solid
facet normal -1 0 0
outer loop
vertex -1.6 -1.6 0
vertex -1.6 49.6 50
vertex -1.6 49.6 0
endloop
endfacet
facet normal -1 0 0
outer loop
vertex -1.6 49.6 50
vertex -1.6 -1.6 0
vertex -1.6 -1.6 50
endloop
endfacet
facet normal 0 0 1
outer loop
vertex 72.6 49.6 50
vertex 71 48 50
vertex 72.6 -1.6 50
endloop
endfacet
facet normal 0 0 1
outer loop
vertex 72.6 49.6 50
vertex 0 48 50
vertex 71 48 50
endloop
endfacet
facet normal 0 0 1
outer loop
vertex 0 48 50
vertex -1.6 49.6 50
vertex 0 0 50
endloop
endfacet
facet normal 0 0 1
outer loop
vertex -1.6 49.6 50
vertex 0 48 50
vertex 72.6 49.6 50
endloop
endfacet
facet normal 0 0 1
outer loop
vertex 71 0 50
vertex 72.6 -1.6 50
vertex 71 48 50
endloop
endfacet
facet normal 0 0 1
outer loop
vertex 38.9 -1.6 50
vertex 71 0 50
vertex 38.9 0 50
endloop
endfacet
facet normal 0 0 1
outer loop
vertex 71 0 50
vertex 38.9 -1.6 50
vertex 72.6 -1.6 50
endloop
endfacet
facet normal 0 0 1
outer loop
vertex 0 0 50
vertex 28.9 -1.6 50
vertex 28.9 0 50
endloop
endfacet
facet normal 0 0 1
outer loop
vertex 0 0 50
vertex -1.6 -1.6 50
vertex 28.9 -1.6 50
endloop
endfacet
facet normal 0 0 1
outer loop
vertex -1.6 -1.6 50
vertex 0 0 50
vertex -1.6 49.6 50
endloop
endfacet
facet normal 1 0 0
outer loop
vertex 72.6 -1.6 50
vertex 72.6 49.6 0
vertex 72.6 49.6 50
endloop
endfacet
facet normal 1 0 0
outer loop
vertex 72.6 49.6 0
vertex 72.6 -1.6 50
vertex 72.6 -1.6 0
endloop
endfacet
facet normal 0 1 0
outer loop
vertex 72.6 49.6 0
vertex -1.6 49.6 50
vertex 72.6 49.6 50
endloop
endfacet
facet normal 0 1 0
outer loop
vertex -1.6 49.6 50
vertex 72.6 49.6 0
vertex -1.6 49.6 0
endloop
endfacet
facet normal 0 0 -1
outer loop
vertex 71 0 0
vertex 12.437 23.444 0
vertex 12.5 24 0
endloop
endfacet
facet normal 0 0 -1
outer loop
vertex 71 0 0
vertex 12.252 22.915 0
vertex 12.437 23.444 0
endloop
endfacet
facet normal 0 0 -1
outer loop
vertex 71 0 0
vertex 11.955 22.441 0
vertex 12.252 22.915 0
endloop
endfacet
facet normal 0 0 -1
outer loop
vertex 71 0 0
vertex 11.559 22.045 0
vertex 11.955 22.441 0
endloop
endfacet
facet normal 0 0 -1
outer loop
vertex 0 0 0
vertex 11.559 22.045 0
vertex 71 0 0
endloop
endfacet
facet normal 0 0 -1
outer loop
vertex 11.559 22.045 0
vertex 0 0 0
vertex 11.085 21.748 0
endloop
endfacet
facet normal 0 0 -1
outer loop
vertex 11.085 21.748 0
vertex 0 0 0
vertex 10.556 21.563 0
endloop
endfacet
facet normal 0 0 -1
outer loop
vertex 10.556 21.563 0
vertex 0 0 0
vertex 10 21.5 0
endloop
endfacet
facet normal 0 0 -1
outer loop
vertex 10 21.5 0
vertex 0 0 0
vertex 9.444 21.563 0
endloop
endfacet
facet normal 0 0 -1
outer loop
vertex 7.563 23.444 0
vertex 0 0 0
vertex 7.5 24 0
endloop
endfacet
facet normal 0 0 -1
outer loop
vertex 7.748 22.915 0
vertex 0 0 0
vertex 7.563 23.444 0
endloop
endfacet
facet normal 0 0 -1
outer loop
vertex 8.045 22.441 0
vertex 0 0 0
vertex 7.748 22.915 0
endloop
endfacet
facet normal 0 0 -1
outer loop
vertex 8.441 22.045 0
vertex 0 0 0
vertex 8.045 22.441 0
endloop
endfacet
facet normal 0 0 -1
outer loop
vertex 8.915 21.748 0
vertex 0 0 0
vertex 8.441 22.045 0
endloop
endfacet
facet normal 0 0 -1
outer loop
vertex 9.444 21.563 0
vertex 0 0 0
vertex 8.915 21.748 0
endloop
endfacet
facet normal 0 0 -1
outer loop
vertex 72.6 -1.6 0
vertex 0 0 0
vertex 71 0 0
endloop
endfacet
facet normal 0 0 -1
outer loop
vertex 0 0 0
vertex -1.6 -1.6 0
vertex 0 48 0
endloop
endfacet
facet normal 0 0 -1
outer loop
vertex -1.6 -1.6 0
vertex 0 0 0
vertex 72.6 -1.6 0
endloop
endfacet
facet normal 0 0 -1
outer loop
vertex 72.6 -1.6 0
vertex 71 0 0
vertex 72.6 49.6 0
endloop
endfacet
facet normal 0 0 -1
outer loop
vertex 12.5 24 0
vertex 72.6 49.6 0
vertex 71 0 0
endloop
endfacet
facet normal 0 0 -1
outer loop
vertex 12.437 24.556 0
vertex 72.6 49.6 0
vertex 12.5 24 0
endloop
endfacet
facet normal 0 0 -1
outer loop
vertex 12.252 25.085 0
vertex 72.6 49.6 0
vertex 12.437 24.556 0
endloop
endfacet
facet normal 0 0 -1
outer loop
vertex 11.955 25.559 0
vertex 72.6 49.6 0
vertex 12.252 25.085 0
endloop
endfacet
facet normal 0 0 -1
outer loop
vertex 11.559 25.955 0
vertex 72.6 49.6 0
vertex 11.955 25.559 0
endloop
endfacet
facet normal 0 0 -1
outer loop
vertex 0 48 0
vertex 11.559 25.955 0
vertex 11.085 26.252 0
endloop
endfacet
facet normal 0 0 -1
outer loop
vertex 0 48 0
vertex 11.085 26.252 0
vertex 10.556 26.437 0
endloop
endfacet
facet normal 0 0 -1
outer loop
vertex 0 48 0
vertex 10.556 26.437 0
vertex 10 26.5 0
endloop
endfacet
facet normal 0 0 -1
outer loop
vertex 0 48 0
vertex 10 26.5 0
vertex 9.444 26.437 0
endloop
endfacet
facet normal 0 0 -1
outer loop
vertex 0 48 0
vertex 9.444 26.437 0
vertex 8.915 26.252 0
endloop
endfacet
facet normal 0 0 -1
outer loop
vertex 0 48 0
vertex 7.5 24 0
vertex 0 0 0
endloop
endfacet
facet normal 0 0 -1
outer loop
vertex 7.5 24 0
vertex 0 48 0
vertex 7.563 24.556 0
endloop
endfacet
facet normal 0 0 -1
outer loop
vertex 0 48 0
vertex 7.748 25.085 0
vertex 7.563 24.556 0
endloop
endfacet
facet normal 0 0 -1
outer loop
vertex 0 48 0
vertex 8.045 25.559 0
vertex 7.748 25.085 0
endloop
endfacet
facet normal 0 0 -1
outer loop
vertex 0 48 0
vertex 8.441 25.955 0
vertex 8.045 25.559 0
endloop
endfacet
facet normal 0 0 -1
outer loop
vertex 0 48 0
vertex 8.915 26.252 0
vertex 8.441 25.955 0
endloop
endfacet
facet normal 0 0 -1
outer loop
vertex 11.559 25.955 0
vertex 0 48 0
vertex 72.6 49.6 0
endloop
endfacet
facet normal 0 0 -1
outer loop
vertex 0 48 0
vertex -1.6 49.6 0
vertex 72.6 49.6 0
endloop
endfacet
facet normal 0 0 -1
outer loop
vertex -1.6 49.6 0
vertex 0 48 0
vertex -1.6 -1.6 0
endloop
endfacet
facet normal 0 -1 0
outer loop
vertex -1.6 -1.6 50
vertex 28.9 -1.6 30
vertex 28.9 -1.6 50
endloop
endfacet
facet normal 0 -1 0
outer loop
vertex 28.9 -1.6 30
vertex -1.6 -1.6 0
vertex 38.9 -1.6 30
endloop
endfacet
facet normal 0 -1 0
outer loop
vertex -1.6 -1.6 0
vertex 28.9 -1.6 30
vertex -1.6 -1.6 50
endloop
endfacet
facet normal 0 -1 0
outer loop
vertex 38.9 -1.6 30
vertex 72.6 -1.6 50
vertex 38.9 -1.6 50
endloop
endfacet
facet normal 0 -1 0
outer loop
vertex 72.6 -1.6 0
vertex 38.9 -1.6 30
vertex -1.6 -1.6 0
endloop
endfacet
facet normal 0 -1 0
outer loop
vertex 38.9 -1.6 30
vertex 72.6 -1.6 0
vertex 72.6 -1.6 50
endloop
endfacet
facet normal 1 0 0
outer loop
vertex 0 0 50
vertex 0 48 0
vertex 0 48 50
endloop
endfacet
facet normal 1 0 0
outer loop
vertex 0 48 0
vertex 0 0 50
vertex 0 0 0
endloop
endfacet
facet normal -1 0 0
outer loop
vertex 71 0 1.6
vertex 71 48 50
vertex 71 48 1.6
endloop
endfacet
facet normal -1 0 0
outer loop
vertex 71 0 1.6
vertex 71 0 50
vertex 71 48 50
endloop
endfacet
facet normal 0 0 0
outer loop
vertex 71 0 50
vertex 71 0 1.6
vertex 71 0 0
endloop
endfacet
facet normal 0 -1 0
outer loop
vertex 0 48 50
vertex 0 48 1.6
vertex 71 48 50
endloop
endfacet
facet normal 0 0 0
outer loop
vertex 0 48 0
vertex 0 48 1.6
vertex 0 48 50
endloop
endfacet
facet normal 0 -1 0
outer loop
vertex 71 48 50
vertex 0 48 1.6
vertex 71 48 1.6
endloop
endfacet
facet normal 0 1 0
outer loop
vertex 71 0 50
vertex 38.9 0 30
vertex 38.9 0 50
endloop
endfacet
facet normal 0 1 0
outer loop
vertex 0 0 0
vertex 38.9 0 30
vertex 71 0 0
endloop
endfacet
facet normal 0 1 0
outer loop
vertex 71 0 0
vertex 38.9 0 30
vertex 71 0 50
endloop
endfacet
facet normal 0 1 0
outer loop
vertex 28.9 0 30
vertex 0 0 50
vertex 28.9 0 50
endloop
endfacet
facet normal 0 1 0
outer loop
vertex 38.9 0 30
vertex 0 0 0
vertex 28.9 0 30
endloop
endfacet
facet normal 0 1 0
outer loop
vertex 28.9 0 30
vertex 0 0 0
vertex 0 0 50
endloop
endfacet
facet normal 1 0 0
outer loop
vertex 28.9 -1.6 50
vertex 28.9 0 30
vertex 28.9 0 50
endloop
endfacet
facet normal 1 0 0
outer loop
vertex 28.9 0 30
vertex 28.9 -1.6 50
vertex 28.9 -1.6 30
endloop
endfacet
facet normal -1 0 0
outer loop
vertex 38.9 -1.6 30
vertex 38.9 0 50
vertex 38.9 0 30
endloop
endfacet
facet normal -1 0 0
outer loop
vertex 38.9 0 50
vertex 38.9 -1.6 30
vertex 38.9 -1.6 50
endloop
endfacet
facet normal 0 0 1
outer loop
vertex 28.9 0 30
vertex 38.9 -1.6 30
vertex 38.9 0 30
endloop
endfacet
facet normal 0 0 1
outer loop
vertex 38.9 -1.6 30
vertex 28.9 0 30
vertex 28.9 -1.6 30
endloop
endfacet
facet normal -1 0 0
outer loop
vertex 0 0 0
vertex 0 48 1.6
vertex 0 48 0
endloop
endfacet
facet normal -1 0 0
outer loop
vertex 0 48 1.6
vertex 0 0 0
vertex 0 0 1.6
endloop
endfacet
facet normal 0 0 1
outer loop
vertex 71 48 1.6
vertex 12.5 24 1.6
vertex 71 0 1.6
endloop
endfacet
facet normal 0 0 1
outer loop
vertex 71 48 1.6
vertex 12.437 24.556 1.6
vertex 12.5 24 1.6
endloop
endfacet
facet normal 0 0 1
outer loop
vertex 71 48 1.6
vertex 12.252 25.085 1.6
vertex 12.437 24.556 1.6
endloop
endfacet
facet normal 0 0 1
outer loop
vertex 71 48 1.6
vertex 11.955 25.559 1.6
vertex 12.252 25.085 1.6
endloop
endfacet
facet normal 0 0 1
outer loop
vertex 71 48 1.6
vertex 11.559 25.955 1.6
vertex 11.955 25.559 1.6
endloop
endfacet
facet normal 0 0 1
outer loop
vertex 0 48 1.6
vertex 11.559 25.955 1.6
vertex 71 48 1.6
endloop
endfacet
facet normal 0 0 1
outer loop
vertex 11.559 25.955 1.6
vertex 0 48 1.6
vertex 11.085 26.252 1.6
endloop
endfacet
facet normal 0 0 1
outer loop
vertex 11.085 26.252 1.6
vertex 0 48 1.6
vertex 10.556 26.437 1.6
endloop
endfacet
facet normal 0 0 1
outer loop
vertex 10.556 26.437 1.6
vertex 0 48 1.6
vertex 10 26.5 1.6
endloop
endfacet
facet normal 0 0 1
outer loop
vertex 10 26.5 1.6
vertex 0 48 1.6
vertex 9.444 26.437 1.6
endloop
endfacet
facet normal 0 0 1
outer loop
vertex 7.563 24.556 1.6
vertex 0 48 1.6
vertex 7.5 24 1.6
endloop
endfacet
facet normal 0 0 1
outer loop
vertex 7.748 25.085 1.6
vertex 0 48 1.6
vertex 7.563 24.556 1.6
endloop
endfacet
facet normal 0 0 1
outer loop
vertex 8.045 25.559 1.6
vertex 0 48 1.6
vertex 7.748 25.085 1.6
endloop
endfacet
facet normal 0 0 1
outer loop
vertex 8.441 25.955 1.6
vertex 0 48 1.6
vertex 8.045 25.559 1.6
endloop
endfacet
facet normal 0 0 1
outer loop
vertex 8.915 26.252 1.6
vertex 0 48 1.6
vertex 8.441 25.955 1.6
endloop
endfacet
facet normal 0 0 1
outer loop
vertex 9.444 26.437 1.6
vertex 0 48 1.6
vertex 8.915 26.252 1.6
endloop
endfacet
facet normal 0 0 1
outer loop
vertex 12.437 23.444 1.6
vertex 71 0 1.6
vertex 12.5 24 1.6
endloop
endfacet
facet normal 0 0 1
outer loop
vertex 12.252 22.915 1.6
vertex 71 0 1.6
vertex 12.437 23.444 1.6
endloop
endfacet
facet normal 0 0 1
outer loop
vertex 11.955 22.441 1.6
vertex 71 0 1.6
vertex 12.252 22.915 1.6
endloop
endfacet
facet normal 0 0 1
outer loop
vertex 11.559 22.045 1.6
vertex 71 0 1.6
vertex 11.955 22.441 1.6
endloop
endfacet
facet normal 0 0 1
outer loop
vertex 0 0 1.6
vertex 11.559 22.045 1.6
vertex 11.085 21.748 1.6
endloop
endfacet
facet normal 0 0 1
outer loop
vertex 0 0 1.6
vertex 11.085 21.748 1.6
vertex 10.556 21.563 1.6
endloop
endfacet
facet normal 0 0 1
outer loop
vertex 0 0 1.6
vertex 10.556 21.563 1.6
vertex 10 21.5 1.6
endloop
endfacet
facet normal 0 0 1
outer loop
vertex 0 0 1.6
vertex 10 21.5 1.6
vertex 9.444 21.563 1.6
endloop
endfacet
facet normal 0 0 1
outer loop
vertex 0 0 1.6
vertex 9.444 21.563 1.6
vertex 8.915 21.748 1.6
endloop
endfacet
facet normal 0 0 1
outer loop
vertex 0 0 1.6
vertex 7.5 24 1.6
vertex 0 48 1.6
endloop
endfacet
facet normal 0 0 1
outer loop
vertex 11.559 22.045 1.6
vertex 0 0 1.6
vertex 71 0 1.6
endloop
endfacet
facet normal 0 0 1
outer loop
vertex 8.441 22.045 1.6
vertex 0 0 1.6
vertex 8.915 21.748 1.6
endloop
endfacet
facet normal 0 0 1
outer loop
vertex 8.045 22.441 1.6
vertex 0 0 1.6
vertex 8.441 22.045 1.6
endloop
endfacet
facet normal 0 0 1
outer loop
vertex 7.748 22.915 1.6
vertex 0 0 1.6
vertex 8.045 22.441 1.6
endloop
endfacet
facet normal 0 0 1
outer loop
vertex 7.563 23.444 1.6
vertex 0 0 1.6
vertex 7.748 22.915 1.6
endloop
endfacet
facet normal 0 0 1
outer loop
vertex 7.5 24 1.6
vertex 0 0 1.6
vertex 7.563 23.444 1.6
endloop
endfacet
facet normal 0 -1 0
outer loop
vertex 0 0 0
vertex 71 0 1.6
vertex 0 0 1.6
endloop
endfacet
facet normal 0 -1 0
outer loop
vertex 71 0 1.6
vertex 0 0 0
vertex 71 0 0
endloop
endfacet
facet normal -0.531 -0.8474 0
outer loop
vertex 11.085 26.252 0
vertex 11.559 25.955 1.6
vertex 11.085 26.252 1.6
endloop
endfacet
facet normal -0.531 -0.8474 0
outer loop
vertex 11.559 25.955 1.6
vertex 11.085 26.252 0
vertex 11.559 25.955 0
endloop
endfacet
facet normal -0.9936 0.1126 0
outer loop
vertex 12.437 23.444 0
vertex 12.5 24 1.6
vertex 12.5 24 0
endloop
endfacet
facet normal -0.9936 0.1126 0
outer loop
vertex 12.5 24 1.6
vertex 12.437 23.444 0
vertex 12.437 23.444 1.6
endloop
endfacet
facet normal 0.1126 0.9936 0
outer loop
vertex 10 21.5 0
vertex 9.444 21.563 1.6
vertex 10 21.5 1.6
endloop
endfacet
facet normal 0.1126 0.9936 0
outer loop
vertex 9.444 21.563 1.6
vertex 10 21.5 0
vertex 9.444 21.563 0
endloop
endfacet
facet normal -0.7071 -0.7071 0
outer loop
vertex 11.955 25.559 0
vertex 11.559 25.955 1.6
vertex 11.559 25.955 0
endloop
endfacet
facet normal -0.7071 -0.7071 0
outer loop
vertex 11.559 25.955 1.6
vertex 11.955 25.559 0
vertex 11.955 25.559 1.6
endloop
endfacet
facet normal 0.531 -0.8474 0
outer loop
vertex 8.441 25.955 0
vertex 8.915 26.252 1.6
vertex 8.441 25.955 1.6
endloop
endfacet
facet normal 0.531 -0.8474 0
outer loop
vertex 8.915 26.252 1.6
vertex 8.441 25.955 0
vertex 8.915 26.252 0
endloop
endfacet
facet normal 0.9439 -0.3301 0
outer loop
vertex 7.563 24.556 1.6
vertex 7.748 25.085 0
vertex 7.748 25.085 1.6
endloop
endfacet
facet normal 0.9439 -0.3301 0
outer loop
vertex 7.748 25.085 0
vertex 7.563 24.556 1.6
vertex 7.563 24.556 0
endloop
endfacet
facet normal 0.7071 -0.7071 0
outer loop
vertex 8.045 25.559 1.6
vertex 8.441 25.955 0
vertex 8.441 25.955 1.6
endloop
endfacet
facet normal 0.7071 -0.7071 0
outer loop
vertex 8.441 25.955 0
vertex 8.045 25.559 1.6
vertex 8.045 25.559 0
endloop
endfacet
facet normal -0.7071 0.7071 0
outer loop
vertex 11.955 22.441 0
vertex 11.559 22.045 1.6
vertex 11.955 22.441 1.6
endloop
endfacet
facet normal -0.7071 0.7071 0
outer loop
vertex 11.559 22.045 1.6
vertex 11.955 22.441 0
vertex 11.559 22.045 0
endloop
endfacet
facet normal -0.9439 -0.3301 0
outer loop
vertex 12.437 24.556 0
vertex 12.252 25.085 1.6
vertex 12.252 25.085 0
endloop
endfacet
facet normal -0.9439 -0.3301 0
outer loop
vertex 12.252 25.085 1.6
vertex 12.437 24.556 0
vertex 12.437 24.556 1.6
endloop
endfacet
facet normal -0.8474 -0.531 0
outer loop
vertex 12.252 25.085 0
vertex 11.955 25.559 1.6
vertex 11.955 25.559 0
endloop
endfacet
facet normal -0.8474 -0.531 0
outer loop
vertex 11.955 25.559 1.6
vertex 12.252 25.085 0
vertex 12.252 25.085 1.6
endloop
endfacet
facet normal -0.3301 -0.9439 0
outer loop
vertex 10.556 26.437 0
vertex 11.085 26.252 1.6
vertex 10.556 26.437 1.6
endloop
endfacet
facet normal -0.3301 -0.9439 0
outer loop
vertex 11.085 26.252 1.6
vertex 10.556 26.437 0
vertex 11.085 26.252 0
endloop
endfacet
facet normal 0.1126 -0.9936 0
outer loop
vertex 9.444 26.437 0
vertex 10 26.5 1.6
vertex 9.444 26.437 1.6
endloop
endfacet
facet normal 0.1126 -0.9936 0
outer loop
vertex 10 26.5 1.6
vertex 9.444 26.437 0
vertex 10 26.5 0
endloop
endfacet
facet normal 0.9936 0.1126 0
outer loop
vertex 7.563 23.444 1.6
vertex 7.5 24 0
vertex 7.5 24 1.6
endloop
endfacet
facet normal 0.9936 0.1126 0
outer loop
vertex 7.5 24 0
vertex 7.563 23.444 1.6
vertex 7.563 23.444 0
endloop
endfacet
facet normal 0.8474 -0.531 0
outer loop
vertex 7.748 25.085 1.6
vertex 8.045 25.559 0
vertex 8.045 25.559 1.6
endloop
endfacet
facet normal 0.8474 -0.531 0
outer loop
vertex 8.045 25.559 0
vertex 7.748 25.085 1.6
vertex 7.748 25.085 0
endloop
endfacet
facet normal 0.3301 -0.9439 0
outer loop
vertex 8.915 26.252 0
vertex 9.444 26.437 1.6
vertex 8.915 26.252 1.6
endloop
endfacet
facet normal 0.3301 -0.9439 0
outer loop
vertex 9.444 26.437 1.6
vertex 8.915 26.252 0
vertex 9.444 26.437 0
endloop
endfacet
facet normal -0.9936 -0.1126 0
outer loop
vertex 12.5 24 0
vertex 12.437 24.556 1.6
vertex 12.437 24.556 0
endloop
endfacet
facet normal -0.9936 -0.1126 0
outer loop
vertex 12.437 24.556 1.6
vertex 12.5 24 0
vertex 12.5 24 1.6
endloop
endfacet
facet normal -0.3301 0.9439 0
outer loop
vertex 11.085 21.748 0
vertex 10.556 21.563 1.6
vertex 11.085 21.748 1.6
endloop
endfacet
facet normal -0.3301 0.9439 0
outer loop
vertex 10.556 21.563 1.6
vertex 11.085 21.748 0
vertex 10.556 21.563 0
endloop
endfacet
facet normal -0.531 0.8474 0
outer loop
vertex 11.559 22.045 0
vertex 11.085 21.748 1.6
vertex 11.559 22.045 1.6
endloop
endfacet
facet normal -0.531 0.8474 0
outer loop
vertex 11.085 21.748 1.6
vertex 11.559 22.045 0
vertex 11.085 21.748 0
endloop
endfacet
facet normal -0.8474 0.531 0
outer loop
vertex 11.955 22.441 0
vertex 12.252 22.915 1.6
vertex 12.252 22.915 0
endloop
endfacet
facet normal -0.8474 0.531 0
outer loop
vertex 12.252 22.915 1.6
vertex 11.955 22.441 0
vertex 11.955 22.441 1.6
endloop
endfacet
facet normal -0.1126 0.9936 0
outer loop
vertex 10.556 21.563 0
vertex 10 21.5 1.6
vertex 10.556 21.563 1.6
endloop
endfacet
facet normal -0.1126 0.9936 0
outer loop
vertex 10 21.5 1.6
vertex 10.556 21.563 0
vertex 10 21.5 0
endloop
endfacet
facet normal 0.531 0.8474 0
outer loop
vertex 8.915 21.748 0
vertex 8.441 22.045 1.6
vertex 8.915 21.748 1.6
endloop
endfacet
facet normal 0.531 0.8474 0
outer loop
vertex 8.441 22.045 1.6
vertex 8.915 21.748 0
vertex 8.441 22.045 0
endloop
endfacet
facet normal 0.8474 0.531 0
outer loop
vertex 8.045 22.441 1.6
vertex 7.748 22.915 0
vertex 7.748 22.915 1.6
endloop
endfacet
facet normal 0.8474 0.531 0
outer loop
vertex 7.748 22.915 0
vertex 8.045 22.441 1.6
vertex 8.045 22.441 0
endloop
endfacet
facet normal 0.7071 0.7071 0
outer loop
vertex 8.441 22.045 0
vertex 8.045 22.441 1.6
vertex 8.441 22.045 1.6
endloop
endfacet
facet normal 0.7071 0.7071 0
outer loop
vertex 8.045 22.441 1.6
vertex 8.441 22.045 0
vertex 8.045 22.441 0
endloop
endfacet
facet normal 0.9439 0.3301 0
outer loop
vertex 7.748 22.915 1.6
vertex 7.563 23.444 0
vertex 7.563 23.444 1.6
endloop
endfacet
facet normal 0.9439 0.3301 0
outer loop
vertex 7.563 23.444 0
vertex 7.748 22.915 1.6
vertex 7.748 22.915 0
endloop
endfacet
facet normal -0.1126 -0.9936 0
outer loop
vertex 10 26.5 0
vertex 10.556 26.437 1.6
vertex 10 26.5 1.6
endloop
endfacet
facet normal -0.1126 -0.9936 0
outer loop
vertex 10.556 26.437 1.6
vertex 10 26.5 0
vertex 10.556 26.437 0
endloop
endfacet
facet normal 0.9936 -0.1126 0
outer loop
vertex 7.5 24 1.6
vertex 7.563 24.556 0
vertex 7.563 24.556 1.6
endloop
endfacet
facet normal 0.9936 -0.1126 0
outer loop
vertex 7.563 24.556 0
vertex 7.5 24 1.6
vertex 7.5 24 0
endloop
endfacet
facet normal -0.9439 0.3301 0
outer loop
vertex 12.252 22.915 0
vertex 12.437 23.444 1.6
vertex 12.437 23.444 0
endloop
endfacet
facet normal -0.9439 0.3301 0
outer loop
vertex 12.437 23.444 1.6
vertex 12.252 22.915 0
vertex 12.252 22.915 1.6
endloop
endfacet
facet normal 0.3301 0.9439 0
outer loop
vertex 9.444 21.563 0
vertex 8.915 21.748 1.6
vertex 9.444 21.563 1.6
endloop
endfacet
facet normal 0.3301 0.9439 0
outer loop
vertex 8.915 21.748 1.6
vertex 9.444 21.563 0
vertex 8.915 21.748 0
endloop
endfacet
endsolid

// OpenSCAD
width = 71;
length = 48;
height = 50;

w=0.4*4;
h=10-w;
d=3.5;


translate([-w,-w,0])
difference()
{
    cube([width+2*w,length+2*w,height]);
    translate([w,w,0])
    cube([width,length,height]);
    translate([width/2-5,-w,height-20])
    #cube([10,w*2,20]);
}    

bottom_side(width,length,w);

module bottom_side(width,length,w)
{
    difference()
    {
        cube([width,length,w]);
        translate([10,length/2,0])
        cylinder(d=5,h=w,$fn=28);
    }
}
